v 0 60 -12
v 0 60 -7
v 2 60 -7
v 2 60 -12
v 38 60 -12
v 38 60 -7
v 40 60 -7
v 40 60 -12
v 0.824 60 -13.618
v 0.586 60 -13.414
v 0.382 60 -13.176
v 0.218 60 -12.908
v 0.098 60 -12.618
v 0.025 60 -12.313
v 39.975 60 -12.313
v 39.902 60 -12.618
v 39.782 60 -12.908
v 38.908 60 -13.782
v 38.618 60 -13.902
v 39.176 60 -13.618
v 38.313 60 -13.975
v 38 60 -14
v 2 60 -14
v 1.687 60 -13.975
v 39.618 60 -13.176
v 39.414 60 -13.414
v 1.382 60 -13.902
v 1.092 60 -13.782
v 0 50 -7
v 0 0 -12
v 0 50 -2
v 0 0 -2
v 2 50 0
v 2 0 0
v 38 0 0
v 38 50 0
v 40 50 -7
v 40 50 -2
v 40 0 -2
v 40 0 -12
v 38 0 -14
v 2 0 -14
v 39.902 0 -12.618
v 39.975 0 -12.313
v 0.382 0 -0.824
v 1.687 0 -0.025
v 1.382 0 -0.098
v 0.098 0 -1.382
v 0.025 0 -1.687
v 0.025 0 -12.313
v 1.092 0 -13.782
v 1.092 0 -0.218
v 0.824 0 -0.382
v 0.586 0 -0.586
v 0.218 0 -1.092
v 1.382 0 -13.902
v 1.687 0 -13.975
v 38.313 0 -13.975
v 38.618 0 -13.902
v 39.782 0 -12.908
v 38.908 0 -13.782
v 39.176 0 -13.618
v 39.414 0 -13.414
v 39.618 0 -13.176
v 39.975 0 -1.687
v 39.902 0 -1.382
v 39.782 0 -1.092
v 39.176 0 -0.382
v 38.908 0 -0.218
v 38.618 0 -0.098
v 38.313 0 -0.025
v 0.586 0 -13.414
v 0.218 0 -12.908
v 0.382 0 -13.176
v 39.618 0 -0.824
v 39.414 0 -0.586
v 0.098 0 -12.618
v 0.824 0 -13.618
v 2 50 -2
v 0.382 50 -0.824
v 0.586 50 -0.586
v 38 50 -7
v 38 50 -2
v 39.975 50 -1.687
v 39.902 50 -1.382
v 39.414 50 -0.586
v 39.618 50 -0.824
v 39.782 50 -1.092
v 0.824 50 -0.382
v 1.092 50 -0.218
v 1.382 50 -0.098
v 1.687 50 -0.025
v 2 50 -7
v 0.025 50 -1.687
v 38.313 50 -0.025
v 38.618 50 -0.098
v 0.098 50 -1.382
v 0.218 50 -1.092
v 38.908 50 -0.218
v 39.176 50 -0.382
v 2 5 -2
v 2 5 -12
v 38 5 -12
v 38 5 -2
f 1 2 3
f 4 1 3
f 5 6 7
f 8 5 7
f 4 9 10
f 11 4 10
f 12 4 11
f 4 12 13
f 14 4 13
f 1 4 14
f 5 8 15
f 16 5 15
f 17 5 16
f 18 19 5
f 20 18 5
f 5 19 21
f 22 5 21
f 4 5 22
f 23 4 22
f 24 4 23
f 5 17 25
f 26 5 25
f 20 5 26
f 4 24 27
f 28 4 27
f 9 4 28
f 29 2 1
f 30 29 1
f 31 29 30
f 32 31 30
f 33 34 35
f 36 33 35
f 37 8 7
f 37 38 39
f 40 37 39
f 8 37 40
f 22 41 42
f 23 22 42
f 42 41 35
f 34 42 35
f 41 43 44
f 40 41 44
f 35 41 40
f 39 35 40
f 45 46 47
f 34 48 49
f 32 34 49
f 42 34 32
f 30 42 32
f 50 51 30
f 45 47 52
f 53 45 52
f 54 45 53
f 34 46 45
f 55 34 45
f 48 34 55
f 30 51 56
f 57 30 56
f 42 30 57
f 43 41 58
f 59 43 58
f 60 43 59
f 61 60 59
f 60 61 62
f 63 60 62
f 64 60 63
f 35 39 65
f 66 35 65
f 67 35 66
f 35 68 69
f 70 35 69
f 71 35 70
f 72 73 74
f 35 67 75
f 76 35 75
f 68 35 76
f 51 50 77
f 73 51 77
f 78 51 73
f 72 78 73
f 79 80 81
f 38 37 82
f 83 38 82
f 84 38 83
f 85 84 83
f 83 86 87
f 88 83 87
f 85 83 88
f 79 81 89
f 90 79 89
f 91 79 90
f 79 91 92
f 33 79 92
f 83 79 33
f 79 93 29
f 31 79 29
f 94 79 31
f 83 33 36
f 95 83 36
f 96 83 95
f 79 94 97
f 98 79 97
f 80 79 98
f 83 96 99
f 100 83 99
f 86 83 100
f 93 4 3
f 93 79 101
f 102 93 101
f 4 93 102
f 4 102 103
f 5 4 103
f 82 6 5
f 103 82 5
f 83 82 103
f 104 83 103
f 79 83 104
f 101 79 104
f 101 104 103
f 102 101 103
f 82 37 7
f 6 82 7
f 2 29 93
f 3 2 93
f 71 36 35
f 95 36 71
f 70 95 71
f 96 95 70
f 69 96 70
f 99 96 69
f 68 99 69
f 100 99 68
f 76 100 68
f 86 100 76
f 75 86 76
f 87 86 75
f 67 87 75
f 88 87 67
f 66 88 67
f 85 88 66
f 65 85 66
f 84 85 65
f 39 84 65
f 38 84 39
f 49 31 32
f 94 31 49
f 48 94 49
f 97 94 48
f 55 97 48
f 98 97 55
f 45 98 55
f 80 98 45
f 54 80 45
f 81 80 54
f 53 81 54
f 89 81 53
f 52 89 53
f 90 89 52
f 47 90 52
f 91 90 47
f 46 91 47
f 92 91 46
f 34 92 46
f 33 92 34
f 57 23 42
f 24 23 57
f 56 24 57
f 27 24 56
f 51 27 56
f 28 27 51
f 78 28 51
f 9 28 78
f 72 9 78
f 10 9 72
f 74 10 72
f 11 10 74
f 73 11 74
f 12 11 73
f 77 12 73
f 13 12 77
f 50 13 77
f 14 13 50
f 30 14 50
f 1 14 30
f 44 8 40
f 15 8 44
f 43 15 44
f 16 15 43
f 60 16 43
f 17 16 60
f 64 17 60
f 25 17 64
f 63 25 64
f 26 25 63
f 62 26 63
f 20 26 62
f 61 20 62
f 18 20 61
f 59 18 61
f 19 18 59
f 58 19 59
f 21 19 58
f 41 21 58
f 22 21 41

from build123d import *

# Parameters (mm, degrees)
SKETCH_1_W          = 40
SKETCH_1_H          = 14
EXTRUDE_1_DEPTH     = 60
SKETCH_6_W          = 36
SKETCH_6_H          = 10
CUT_EXTRUDE_2_DEPTH = 55
SKETCH_7_W          = 40
SKETCH_7_H          = 10
CUT_EXTRUDE_3_DEPTH = 7
SKETCH_15_OUTSIDE_W = 56.692
SKETCH_15_OUTSIDE_H = 30.692
CUT_EXTRUDE_5_DEPTH = 61


with BuildPart() as part:
    # 草图1 → 凸台-拉伸1 (new body)
    with BuildSketch(Plane(origin=(0, 0, 0), x_dir=(1, 0, 0), z_dir=(0, 1, 0))):
        with Locations((20, 7)):
            Rectangle(SKETCH_1_W, SKETCH_1_H)
    extrude(amount=EXTRUDE_1_DEPTH)

    # 草图6 → 切除-拉伸2 (cut)
    with BuildSketch(Plane(origin=(0, 60, 0), x_dir=(1, 0, 0), z_dir=(0, 1, 0))):
        with Locations((20, 7)):
            Rectangle(SKETCH_6_W, SKETCH_6_H)
    extrude(amount=-CUT_EXTRUDE_2_DEPTH, mode=Mode.SUBTRACT)

    # 草图7 → 切除-拉伸3 (cut)
    with BuildSketch(Plane.XY):
        with Locations((20, 55)):
            Rectangle(SKETCH_7_W, SKETCH_7_H)
    extrude(amount=-CUT_EXTRUDE_3_DEPTH, mode=Mode.SUBTRACT)

    # 草图15 outside → 切除-拉伸5 (cut, through all)
    with BuildSketch(Plane.XZ):
        with Locations((20, -7)):
            Rectangle(SKETCH_15_OUTSIDE_W, SKETCH_15_OUTSIDE_H)
        with BuildLine():
            Line((2, -14), (38, -14))
            ThreePointArc((38, -14), (39.414213562, -13.414213562), (40, -12))
            Line((40, -12), (40, -2))
            ThreePointArc((40, -2), (39.414213562, -0.585786438), (38, 0))
            Line((38, 0), (2, 0))
            ThreePointArc((2, 0), (0.585786438, -0.585786438), (0, -2))
            Line((0, -2), (0, -12))
            ThreePointArc((0, -12), (0.585786438, -13.414213562), (2, -14))
        make_face(mode=Mode.SUBTRACT)
    extrude(amount=-CUT_EXTRUDE_5_DEPTH, mode=Mode.SUBTRACT)


solid = part.part
